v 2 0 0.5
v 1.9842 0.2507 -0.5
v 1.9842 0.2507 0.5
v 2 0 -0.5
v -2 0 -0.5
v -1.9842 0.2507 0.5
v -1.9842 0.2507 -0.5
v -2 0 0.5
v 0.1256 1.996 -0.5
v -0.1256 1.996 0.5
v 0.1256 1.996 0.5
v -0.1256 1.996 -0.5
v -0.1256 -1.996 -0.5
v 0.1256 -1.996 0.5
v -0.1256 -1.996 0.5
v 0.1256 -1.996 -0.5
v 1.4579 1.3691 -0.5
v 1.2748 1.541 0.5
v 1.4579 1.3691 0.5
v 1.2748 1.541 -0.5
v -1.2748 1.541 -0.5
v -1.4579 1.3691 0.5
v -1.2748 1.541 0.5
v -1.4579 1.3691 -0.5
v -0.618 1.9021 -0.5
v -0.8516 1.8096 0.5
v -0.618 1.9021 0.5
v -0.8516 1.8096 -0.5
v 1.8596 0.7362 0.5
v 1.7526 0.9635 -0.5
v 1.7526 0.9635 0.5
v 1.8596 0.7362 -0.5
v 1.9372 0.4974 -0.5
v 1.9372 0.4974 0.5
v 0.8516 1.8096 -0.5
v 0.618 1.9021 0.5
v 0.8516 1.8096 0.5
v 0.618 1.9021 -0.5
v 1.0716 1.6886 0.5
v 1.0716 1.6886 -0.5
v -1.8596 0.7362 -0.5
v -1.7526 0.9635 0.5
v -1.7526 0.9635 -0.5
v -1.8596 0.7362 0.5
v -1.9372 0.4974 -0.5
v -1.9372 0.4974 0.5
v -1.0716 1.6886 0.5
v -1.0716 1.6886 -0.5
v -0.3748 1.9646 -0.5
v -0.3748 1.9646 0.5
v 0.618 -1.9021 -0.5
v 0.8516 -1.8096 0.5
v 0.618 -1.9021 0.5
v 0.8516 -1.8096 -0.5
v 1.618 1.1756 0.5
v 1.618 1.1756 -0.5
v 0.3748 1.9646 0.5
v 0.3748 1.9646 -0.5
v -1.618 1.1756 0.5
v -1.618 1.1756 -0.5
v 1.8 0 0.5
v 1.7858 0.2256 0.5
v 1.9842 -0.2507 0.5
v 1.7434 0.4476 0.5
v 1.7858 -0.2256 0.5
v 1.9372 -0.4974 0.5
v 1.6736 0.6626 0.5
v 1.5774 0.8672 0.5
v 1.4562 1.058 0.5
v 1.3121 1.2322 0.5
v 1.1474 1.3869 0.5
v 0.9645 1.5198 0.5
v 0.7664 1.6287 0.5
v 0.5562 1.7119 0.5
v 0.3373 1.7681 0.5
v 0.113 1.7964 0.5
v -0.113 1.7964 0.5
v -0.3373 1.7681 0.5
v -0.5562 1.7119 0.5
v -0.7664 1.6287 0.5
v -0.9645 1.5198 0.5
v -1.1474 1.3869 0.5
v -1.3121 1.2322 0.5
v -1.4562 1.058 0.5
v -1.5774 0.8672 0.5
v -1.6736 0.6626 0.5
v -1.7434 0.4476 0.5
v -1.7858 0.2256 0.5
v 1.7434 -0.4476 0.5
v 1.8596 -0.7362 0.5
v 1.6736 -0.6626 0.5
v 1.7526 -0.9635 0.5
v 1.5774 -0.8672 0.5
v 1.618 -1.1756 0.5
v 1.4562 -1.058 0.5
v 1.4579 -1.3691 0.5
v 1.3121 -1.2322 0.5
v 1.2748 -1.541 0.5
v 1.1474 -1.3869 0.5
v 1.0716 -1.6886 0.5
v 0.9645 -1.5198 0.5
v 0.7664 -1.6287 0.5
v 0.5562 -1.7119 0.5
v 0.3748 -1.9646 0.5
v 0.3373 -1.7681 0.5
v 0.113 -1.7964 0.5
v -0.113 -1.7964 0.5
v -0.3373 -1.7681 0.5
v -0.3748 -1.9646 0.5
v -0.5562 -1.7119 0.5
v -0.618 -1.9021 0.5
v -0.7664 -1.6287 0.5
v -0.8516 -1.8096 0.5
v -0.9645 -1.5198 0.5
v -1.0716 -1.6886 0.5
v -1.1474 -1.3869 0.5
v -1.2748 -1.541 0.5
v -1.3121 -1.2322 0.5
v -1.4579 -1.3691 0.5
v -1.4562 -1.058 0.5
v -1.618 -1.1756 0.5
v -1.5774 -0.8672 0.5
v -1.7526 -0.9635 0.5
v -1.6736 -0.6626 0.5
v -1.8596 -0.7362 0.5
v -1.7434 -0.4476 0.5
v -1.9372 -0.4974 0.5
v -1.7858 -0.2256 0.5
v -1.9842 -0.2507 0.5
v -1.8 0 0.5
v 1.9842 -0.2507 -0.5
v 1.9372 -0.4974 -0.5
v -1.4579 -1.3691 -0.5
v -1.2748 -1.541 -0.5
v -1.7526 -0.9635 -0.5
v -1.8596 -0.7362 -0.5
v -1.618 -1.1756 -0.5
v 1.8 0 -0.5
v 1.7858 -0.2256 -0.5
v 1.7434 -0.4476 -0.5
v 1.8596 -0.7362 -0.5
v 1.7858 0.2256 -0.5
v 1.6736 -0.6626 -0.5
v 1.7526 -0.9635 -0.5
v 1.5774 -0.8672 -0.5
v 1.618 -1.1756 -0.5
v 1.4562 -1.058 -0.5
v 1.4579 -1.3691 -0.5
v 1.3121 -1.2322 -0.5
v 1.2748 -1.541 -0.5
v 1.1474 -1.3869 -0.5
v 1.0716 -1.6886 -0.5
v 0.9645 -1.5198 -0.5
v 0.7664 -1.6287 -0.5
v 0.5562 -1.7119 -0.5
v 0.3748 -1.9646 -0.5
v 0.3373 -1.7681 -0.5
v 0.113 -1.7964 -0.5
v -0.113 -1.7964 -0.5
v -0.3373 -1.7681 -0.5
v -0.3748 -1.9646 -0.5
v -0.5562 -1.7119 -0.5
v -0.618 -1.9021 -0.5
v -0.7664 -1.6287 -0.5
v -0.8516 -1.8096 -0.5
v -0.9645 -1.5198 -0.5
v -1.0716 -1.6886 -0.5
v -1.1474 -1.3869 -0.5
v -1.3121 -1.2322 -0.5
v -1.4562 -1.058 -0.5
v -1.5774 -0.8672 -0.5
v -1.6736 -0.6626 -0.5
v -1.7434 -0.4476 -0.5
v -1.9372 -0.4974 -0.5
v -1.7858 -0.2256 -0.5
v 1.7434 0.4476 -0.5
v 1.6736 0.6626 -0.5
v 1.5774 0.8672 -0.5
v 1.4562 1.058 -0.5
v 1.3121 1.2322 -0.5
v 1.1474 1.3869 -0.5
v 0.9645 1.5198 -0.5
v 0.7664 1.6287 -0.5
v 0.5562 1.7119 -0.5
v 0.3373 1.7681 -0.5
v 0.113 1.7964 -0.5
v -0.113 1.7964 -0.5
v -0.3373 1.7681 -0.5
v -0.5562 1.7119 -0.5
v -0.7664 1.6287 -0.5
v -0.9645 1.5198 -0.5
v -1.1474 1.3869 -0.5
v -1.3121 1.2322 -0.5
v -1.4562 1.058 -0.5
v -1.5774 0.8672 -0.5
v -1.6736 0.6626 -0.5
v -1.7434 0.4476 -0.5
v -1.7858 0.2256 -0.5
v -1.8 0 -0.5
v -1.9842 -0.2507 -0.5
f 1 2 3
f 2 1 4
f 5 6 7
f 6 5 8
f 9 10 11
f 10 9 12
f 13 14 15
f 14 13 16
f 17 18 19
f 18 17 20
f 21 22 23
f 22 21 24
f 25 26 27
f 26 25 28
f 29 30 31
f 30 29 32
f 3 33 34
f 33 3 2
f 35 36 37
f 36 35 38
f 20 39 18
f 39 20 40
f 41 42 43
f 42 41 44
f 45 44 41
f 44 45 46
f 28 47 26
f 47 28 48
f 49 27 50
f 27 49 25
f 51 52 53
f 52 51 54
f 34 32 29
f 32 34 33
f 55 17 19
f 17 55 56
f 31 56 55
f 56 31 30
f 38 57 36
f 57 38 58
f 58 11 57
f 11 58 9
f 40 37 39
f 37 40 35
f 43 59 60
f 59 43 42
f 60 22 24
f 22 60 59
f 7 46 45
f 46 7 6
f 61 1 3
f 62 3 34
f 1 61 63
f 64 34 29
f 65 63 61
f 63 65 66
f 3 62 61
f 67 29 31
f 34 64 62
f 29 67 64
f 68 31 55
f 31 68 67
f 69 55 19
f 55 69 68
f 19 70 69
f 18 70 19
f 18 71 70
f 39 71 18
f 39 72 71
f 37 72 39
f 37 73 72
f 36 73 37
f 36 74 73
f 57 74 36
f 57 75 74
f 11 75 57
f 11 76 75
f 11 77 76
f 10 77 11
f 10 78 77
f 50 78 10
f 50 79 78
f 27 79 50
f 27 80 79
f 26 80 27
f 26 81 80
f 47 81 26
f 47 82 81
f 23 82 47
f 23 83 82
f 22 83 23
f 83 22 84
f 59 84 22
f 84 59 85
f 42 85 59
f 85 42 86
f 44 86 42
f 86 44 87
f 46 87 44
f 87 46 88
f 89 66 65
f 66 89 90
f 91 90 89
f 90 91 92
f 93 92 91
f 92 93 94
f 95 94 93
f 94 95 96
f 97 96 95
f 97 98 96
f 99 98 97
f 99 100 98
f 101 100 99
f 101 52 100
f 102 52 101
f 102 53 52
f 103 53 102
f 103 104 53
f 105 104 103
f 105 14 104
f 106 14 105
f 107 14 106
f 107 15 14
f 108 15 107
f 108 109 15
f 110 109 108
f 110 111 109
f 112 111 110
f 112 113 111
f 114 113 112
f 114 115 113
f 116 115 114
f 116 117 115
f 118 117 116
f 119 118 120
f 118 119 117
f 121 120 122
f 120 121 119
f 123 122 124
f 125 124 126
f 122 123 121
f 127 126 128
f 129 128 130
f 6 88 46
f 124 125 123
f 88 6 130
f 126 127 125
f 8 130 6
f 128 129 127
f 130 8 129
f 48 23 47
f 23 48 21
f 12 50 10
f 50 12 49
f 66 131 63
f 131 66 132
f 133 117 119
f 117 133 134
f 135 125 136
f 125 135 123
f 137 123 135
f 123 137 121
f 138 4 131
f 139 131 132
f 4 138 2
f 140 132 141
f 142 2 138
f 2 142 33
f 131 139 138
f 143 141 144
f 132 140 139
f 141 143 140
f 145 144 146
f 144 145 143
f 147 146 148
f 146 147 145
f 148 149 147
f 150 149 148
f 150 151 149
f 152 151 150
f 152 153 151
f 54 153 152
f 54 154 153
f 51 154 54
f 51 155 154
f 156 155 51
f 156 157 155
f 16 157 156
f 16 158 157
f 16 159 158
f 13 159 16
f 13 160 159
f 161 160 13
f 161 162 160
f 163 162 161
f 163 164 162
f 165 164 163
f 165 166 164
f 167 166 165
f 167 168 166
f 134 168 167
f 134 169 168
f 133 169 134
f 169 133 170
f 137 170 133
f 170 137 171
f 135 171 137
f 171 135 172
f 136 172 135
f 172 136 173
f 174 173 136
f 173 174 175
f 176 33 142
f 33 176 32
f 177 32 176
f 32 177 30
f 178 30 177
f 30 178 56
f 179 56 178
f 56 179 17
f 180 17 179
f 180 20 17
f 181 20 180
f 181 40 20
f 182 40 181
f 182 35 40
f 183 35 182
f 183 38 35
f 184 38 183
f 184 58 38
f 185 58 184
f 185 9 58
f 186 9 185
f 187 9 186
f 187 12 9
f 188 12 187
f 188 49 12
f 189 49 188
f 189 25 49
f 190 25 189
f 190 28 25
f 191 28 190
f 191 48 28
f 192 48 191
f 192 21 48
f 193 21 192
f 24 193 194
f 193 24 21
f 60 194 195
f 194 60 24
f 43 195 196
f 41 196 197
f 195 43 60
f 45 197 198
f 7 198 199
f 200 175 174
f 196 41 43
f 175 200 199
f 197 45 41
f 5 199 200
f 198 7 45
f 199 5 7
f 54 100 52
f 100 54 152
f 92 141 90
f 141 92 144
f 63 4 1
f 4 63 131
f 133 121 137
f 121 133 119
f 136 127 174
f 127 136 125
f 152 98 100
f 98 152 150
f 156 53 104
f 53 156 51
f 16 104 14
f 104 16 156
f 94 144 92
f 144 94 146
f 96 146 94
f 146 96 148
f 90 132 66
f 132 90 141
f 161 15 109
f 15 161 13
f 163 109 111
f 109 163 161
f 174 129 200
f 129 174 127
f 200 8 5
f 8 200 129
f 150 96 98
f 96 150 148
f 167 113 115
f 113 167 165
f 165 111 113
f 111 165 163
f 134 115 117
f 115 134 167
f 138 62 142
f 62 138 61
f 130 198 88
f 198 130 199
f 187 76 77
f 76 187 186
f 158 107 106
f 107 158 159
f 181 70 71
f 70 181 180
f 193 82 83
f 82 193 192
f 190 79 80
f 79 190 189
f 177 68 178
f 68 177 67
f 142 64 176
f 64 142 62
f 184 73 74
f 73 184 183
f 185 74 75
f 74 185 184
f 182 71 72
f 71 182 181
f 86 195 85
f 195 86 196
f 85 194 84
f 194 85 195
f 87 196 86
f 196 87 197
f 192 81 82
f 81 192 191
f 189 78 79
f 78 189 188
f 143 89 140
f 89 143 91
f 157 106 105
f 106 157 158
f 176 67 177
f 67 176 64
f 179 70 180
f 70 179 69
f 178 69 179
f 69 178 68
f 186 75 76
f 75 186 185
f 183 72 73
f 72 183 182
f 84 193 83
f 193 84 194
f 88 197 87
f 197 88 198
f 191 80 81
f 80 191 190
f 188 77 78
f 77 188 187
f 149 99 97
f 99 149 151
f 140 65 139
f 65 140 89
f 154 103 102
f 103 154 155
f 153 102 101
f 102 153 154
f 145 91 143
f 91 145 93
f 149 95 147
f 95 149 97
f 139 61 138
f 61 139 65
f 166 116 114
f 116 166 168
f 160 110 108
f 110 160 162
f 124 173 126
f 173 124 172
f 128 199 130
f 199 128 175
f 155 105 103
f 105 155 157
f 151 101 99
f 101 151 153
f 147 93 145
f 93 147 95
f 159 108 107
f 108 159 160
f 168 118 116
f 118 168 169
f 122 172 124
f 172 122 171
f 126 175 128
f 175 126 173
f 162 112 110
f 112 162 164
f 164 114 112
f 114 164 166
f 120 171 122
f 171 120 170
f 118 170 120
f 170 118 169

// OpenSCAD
$fn = 50;


difference() {
	union() {
		translate(v = [0, 0, -0.5000000000]) {
			cylinder(h = 1, r = 2.0000000000);
		}
	}
	union() {
		translate(v = [0, 0, -100.0000000000]) {
			cylinder(h = 200, r = 1.8000000000);
		}
	}
}
